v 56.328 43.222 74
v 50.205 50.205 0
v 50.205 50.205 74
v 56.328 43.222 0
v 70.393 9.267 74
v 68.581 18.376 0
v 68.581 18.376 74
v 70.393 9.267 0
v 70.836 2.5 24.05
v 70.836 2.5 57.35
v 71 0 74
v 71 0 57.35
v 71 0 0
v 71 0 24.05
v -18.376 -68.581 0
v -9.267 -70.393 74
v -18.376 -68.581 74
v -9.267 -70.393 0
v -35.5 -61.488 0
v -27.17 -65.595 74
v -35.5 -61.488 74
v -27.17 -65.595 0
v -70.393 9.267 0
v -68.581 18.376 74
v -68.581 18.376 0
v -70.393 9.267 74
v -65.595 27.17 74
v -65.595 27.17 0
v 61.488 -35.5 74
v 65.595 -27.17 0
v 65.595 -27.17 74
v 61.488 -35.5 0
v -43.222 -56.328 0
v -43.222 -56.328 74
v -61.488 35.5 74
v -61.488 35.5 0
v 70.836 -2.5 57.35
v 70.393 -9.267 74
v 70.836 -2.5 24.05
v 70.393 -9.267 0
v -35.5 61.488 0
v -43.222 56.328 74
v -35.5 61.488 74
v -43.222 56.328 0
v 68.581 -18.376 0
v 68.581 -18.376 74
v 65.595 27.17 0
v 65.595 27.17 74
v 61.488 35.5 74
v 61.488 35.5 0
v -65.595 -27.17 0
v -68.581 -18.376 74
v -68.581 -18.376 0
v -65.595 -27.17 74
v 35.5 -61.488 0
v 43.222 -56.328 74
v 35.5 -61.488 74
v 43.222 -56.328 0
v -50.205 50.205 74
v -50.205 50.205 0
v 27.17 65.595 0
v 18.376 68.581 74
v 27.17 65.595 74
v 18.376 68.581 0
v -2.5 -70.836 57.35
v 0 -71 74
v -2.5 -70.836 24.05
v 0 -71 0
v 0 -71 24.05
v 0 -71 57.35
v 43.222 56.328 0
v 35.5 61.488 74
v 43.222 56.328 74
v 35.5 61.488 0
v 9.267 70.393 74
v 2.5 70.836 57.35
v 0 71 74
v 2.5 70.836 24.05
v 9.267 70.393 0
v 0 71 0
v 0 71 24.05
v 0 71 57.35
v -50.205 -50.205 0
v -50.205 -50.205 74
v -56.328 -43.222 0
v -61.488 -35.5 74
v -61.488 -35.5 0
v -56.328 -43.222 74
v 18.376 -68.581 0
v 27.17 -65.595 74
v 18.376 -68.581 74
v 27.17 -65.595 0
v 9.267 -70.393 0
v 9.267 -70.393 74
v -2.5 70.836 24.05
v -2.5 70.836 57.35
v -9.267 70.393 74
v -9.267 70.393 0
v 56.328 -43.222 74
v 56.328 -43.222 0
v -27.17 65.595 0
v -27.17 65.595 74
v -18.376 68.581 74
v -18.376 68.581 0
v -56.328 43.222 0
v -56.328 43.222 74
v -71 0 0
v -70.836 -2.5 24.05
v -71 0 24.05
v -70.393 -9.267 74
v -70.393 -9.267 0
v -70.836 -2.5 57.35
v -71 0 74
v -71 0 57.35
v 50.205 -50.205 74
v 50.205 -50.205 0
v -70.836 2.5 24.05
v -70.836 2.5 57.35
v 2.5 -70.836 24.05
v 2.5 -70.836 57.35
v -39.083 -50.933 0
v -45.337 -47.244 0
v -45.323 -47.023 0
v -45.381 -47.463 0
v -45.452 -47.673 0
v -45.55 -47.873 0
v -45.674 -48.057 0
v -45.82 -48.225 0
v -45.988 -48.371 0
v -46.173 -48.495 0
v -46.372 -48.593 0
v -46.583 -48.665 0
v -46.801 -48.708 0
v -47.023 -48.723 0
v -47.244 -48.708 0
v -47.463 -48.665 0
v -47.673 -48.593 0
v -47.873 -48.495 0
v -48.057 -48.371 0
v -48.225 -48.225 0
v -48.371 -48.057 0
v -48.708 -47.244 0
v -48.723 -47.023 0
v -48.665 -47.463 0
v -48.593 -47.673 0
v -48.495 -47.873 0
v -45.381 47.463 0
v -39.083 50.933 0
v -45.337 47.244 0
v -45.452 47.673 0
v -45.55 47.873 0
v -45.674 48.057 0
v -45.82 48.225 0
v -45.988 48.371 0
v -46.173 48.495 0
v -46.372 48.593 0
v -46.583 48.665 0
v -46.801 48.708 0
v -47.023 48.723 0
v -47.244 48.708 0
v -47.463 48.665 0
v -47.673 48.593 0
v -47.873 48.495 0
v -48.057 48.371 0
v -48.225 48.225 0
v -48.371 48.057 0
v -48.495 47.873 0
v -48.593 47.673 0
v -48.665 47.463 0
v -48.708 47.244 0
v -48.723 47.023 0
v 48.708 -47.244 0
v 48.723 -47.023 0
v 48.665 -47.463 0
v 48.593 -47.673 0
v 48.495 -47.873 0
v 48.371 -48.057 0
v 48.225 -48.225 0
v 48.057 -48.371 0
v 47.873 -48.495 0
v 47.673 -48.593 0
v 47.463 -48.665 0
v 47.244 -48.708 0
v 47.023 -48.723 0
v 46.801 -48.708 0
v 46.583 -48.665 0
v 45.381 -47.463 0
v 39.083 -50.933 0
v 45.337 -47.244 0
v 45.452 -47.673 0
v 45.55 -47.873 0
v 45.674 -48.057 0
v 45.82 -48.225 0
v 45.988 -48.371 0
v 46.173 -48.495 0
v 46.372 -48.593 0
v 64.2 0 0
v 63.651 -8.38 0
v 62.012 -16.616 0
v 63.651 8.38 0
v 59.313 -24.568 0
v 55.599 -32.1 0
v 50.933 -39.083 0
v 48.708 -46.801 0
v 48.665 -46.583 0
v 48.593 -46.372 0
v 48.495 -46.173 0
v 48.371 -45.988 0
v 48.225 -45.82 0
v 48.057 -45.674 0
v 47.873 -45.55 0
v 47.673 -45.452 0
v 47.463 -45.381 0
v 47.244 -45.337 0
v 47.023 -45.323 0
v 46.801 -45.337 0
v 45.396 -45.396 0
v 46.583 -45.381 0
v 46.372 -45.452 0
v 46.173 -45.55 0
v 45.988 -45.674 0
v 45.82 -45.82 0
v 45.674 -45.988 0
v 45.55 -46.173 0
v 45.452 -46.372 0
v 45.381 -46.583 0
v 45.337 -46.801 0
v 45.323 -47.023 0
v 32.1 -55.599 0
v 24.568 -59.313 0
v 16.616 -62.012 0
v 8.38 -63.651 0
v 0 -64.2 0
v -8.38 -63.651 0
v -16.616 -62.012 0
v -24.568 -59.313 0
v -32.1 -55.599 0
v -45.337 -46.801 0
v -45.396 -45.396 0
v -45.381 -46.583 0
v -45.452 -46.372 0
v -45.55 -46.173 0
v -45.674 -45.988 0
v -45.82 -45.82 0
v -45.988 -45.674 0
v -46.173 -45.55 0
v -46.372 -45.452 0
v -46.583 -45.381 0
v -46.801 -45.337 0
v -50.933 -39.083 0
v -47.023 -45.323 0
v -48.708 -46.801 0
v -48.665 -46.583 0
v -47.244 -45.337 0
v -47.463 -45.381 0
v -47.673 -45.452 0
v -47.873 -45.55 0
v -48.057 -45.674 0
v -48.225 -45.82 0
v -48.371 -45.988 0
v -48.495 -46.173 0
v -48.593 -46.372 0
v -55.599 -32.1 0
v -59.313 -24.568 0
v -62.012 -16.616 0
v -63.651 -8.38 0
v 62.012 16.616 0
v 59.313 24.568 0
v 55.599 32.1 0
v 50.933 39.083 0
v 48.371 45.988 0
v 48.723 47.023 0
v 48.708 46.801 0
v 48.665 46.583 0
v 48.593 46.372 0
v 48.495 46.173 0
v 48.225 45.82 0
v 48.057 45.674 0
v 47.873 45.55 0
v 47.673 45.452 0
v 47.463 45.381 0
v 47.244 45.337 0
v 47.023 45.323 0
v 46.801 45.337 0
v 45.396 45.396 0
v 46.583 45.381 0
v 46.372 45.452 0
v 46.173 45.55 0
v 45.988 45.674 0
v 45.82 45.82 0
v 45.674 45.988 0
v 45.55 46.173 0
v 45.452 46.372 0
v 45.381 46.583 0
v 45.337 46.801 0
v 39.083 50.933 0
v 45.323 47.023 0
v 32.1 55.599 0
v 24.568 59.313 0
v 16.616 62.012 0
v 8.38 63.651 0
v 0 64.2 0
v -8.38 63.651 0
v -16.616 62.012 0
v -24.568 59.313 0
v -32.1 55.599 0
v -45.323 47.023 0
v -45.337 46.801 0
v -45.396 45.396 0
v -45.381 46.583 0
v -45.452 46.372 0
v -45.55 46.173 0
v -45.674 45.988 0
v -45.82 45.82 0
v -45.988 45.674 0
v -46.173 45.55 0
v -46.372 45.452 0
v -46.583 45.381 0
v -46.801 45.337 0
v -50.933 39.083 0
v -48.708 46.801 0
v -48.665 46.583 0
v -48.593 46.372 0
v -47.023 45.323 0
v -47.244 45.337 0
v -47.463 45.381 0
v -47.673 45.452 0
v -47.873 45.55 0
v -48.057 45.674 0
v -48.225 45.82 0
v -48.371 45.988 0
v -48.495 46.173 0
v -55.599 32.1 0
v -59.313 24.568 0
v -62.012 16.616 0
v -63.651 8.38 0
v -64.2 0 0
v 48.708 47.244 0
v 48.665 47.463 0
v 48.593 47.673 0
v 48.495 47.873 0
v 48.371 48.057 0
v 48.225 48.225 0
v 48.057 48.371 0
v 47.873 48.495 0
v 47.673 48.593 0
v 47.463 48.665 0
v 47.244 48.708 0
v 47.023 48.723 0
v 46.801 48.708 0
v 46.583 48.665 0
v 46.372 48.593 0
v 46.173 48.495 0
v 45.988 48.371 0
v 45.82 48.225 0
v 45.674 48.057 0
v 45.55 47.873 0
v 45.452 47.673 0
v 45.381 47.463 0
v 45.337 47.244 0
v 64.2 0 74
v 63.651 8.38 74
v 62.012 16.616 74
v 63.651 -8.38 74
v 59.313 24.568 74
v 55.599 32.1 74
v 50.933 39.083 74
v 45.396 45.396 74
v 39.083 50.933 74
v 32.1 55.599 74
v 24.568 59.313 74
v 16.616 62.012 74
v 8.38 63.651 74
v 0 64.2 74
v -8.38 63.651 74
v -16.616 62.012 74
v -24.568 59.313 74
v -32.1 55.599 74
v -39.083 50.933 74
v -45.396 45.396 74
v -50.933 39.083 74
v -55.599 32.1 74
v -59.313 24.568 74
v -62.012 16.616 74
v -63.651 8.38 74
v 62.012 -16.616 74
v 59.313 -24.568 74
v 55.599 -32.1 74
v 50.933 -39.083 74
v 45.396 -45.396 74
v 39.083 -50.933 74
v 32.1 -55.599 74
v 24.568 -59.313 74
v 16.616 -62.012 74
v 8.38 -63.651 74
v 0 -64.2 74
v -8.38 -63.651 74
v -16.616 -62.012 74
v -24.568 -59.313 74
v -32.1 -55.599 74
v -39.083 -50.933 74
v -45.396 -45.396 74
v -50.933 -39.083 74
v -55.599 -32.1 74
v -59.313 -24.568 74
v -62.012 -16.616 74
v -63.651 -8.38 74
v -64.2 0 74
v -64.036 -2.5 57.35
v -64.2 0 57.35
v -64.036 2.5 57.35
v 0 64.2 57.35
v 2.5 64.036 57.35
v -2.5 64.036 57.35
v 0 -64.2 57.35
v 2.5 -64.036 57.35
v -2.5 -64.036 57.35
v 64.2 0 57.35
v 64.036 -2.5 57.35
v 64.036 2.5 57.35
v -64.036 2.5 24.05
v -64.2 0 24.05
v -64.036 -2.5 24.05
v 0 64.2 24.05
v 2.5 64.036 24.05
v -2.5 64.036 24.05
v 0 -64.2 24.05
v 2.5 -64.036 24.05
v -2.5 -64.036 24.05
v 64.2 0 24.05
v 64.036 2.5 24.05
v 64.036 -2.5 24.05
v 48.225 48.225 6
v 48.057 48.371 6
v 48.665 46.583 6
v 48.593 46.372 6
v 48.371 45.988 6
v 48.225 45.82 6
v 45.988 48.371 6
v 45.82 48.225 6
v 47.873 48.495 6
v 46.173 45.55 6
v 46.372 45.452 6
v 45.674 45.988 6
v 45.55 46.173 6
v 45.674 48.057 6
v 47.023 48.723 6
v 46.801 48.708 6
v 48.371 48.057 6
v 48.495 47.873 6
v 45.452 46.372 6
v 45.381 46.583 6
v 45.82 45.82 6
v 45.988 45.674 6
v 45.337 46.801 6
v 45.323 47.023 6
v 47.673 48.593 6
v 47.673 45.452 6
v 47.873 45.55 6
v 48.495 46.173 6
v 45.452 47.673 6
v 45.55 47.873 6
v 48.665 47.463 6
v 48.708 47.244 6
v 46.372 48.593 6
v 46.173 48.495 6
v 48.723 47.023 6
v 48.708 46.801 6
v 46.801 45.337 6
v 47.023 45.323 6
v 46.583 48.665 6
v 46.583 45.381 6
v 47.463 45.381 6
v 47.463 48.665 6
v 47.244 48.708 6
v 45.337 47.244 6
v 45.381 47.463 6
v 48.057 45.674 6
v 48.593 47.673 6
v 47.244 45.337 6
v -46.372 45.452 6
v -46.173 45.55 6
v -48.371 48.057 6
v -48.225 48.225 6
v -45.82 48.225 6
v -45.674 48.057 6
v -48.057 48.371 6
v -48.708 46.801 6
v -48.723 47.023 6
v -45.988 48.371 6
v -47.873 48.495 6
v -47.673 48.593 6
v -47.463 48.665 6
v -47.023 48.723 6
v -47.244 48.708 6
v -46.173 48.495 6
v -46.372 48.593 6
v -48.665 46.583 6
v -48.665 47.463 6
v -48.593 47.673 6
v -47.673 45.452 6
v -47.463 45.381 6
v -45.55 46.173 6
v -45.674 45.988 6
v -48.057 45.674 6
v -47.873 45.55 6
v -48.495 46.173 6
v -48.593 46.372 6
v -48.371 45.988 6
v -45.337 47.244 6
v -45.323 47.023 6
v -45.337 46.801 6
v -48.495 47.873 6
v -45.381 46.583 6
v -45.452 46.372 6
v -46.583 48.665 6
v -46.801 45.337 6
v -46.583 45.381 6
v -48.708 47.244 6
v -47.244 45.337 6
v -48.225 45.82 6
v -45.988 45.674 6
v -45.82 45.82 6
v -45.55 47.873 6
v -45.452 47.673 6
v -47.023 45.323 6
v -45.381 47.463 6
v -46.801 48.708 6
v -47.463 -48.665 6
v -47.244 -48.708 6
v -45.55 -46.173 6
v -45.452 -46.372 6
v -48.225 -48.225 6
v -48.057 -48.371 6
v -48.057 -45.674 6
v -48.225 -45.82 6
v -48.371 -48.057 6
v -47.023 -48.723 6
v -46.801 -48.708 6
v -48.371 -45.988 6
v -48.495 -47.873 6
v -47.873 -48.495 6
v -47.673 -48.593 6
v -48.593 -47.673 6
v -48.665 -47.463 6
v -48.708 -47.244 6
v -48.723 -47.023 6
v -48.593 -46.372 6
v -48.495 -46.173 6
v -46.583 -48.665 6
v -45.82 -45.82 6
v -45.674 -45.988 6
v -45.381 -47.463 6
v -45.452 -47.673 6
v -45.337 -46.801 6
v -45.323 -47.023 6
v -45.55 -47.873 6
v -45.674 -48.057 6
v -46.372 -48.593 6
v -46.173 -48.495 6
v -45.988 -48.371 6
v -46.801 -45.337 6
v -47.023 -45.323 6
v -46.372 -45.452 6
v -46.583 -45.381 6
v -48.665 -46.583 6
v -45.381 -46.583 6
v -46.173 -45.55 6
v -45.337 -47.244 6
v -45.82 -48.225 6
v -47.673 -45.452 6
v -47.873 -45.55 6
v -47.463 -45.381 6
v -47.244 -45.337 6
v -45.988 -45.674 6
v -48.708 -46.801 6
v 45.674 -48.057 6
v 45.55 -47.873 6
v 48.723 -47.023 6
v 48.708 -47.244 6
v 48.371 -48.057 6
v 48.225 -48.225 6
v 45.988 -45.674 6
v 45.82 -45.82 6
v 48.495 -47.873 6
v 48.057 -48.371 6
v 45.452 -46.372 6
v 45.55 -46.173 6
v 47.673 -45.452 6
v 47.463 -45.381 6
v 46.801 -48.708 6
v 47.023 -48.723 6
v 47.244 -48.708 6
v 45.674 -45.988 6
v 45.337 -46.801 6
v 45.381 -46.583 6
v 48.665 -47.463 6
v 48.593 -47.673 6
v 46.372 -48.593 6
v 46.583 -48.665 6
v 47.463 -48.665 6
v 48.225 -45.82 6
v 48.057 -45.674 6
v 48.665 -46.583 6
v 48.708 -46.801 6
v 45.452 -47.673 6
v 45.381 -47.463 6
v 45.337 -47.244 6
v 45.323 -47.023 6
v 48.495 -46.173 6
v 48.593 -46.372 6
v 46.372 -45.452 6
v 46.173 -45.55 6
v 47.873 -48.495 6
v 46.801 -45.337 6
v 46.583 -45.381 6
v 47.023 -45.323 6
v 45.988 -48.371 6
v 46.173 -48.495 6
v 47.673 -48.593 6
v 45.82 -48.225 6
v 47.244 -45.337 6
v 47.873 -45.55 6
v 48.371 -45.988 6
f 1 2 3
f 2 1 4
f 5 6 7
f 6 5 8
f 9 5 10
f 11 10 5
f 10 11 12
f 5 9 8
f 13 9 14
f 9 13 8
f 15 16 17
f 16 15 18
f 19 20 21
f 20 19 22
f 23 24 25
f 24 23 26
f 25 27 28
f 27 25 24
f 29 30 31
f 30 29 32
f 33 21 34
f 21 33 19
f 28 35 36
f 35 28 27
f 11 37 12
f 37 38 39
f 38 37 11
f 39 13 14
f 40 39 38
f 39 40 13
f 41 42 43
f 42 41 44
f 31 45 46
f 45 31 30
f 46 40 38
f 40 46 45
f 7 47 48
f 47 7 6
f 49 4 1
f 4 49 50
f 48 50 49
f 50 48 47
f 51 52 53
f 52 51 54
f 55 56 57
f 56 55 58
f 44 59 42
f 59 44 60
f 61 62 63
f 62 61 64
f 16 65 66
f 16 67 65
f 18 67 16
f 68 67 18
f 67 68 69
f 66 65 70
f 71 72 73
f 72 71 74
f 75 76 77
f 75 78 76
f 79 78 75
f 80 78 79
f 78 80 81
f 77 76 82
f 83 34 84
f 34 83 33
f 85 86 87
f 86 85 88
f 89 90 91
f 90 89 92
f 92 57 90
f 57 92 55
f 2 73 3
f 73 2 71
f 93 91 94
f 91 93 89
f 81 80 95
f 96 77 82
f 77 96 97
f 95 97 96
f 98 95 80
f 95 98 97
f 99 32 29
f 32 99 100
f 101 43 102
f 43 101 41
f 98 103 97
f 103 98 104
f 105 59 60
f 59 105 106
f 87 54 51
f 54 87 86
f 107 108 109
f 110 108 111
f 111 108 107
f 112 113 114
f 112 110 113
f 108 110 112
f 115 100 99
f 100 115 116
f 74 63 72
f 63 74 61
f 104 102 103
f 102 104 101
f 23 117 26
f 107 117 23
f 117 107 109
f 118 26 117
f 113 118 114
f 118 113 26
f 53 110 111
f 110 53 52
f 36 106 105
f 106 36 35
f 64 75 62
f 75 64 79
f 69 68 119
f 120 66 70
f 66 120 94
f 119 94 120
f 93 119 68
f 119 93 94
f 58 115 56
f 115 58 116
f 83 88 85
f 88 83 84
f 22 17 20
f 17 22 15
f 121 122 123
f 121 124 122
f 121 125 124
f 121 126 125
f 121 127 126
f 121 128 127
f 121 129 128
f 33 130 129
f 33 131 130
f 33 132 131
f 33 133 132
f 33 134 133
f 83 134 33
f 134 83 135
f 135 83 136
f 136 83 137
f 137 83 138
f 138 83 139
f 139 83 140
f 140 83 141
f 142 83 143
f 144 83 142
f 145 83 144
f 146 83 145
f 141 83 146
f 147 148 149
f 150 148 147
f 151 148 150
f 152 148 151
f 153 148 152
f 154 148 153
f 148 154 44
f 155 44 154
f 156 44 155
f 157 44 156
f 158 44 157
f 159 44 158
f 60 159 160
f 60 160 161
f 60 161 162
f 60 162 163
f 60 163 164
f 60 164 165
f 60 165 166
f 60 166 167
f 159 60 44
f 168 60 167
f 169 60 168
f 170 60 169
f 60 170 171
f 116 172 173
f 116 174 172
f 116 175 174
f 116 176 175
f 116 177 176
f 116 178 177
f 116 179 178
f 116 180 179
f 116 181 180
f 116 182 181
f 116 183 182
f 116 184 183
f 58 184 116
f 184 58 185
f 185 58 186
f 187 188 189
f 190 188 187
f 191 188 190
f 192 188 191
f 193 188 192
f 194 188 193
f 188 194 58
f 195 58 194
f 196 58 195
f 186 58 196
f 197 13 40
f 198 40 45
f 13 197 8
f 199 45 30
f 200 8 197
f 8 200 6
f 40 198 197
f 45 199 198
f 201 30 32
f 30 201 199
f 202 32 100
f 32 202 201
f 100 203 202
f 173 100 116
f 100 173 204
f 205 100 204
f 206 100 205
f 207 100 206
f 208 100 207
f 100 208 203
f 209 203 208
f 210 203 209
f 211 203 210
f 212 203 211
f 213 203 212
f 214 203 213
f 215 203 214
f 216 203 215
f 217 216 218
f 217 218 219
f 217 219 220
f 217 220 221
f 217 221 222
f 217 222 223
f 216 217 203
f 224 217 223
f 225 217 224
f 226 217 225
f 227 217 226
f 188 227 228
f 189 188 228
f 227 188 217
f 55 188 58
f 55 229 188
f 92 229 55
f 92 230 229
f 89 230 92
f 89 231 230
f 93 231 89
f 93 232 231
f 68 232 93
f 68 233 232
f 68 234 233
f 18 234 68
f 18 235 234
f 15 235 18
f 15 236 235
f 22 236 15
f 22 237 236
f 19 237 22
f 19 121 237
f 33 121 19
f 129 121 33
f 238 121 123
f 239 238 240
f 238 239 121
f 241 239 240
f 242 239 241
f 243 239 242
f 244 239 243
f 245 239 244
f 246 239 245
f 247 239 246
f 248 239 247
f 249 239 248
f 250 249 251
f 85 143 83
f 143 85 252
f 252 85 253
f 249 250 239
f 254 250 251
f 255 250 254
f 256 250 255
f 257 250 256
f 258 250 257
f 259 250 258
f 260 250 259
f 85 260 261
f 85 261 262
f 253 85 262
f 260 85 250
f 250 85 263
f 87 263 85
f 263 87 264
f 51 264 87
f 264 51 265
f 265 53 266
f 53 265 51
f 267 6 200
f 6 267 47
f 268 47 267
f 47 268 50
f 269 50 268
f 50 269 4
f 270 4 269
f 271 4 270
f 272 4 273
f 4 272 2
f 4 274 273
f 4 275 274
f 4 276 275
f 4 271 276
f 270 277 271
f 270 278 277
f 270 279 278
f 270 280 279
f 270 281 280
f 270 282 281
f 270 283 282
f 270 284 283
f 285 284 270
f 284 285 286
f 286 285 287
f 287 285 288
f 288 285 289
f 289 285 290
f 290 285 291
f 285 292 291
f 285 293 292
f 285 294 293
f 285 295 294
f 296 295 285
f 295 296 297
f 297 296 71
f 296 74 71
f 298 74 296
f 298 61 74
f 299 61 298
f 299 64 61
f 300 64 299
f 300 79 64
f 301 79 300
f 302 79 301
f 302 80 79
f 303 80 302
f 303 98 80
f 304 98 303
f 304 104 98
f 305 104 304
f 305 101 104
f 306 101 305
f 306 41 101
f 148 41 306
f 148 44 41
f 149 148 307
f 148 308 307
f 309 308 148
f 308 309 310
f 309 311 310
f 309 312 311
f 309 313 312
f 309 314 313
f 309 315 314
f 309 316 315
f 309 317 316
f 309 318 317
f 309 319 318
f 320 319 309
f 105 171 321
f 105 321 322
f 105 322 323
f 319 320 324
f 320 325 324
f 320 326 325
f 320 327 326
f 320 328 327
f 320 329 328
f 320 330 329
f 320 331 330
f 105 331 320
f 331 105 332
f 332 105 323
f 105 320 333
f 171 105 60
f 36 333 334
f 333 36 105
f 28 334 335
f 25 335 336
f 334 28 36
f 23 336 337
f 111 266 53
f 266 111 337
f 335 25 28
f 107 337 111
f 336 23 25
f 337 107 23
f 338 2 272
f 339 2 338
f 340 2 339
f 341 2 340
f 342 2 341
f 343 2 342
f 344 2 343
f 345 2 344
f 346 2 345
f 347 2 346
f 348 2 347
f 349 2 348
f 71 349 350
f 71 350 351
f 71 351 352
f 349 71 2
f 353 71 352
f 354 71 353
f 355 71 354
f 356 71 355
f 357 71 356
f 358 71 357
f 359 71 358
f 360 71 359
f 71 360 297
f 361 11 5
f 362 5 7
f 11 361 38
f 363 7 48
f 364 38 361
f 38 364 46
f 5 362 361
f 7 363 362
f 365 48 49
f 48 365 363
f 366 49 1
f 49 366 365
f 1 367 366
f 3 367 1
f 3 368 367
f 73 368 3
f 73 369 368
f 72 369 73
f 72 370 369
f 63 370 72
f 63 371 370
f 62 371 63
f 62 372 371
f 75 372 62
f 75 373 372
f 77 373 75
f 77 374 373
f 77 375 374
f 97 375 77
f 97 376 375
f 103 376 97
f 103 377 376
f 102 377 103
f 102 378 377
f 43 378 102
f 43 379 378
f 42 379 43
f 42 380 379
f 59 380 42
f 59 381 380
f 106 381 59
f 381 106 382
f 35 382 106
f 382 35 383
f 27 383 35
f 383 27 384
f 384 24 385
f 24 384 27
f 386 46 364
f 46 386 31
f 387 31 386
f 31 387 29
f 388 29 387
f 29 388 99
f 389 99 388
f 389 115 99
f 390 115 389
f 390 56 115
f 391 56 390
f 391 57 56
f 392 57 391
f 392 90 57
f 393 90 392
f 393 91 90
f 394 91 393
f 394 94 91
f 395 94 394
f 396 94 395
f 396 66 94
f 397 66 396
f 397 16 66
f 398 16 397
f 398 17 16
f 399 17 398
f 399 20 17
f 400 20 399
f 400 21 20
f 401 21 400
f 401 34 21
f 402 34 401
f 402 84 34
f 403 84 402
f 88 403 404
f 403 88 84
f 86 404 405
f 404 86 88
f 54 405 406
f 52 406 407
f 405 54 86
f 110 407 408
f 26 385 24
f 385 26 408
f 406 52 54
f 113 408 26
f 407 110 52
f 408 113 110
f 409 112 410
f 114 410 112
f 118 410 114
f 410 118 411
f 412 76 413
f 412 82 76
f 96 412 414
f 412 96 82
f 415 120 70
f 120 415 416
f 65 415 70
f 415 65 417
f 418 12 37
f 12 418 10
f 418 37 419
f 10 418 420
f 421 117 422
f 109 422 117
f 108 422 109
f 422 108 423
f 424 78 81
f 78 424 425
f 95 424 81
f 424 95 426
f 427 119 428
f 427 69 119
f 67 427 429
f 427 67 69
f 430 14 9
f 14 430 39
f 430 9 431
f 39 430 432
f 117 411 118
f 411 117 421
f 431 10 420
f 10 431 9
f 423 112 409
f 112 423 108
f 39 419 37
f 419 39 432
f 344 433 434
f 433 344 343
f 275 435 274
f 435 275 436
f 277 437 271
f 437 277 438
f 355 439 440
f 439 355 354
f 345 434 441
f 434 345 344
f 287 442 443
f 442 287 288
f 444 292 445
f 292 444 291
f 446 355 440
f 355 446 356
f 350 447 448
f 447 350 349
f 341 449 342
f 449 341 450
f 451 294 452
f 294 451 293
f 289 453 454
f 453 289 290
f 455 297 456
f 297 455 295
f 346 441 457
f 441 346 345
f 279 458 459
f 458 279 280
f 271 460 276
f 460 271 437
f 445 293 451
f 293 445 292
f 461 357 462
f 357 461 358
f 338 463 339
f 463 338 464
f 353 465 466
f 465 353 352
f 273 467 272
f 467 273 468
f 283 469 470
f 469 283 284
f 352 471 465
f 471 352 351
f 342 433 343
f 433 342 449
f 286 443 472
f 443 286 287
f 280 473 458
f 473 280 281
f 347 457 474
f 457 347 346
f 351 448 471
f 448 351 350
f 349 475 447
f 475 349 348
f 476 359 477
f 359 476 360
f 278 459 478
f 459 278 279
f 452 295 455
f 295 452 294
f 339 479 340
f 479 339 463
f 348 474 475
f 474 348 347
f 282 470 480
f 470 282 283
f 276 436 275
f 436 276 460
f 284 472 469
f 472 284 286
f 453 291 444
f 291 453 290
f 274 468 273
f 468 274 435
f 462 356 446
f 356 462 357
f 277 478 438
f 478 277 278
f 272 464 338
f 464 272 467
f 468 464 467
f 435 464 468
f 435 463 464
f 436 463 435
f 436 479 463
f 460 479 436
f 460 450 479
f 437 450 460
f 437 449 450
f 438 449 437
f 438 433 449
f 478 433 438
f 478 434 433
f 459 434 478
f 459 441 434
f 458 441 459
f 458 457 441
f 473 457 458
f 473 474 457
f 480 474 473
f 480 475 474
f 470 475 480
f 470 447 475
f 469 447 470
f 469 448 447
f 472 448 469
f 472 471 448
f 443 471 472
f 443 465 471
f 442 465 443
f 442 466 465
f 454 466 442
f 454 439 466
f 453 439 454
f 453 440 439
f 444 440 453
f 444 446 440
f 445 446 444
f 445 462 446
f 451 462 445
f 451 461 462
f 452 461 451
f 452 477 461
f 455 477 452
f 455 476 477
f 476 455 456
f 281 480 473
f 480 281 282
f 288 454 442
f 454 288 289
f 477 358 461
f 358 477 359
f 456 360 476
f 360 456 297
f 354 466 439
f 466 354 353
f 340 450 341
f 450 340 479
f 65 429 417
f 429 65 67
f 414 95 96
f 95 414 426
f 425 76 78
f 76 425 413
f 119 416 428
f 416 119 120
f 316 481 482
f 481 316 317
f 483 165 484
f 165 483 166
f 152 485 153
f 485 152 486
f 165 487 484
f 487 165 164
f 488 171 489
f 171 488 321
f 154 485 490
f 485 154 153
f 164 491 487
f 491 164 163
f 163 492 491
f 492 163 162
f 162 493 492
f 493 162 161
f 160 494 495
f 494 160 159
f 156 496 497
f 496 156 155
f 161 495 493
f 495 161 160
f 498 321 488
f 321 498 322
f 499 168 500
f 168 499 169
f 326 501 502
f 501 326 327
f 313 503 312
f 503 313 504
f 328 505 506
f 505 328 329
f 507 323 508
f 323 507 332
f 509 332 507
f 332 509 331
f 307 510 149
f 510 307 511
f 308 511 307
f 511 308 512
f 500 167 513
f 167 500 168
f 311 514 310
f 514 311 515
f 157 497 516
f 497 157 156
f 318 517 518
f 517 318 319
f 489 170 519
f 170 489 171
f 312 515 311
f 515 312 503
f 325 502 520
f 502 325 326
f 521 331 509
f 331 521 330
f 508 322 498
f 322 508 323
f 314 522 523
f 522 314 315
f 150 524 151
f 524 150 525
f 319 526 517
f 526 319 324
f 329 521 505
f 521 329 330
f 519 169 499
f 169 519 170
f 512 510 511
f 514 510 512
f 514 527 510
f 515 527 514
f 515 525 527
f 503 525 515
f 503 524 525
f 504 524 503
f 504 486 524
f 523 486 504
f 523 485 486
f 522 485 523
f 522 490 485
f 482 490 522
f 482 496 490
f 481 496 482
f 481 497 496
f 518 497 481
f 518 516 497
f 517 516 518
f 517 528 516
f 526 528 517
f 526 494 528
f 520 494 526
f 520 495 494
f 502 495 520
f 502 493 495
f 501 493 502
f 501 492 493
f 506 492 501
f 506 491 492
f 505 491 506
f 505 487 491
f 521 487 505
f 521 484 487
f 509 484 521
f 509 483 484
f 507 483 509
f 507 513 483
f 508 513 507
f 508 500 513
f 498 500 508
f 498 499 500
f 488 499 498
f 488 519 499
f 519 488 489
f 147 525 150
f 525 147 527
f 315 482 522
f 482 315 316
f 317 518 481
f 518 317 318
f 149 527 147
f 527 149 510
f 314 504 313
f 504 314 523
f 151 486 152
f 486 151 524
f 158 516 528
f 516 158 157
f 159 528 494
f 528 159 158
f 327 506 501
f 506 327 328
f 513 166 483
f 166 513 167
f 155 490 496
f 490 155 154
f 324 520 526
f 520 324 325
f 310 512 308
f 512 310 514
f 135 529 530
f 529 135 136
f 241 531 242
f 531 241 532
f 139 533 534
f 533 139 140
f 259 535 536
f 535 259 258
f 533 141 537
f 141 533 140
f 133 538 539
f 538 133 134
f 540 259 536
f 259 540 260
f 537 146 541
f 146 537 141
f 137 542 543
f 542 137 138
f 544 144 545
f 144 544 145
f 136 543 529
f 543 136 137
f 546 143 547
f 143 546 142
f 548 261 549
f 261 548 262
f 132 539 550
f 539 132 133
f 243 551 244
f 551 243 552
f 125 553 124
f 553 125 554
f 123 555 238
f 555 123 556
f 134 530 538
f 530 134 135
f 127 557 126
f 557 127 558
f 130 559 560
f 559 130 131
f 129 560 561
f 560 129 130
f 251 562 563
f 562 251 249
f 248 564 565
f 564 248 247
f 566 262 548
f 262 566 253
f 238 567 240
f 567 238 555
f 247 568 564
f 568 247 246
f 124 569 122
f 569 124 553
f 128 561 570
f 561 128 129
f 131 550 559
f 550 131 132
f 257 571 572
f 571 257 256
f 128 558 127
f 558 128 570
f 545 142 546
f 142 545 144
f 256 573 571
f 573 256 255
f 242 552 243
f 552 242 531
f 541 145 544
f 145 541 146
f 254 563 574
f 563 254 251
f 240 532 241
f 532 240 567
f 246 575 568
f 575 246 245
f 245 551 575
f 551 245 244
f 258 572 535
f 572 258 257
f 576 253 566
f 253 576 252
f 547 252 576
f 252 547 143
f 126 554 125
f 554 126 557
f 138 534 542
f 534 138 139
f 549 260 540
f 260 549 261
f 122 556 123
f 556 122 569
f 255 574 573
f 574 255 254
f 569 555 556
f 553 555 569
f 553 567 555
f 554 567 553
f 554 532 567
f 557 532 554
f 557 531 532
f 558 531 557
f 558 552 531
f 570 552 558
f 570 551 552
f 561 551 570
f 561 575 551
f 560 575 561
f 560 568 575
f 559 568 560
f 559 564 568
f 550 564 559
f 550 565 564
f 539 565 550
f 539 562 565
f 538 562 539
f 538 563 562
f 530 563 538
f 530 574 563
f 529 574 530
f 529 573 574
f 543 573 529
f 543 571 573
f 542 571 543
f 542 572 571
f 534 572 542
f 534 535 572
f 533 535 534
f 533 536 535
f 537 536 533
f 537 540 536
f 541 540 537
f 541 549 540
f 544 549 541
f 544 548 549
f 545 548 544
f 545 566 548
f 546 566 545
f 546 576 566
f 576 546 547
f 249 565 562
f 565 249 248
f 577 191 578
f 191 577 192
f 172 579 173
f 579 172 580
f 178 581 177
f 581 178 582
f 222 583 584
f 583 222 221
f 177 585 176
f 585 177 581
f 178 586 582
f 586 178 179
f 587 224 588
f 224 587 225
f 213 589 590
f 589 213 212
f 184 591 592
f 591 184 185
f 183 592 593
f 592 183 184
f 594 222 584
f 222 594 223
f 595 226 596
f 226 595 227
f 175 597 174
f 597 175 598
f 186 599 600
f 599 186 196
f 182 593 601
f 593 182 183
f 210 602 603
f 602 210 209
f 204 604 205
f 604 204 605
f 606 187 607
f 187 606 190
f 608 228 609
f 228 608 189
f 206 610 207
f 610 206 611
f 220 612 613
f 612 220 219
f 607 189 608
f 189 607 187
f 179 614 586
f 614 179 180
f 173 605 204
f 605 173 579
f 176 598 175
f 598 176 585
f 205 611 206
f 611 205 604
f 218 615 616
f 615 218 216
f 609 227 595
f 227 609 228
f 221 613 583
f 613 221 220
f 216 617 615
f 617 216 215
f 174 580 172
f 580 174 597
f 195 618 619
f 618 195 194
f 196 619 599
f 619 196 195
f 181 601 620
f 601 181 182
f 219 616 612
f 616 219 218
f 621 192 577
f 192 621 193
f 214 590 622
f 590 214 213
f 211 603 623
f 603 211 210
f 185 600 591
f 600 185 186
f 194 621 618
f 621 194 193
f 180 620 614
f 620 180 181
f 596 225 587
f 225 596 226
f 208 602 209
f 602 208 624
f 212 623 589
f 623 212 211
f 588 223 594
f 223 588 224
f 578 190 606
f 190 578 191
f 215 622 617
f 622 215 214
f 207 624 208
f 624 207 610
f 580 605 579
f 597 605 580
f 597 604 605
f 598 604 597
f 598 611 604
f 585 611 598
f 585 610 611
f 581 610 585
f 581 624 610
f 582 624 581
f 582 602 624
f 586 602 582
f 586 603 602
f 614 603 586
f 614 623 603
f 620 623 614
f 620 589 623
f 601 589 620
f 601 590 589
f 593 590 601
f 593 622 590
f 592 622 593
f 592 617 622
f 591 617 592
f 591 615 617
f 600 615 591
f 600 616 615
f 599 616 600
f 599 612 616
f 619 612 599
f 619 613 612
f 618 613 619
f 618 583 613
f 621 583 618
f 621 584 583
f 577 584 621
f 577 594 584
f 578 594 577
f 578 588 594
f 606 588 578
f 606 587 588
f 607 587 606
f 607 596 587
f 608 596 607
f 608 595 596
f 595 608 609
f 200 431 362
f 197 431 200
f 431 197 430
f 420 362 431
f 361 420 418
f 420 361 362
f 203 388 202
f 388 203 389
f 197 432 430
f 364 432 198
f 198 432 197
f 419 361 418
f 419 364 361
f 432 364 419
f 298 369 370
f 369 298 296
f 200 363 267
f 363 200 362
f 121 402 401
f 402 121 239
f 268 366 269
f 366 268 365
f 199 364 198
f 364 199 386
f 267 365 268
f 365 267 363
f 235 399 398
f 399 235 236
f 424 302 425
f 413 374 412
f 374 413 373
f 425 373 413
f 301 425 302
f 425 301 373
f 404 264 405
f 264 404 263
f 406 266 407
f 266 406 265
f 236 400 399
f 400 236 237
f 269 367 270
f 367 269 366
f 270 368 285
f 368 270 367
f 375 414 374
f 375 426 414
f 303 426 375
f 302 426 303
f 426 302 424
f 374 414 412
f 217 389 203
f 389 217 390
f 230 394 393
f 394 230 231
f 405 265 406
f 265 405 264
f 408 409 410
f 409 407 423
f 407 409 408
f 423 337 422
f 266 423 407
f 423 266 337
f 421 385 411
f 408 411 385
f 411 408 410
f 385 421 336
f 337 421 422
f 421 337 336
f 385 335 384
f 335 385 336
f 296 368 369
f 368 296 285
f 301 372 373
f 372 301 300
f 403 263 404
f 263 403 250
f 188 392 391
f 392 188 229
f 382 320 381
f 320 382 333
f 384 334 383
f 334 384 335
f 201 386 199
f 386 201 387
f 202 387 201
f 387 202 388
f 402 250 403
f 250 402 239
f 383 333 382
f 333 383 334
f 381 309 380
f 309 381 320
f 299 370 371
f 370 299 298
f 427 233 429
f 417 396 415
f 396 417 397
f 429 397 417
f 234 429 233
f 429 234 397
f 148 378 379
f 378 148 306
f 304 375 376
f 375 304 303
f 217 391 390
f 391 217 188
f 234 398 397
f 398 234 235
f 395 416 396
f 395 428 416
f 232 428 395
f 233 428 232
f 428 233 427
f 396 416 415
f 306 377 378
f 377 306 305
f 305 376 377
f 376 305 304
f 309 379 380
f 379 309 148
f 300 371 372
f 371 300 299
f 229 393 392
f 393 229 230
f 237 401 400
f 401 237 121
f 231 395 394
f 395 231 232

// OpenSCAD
// ============================================================================
// Get Me An Alt — Parametric OpenSCAD Module
// Part: PRT-04 — Centrifugal Blower Acoustic Volute & Motor Mount (impeller-shroud)
// Function: Houses the 24V centrifugal blower and suppresses motor noise.
// Target Bounding Box (mm): [142, 142, 74]
// Print Material: PETG | Min Wall: >= 1.6mm | Tolerance: 0.2mm
// ============================================================================
$fn = 48;
part_width = 142;
part_depth = 142;
part_height = 74;
wall_thickness = 3.5;
floor_thickness = 3.5;
corner_radius = 4;
tolerance = 0.2;
m3_clearance_d = 3.4; // M3 screw clearance hole (3.0mm + 2*0.2mm)

module rounded_rect_prism(w, d, h, r) {
  cr = max(0.5, min(r, min(w, d) / 2 - 0.1));
  linear_extrude(height = h)
    offset(r = cr)
      offset(r = -cr)
        square([w, d], center = true);
}

module part_impeller_shroud() {
  difference() {
    union() {
      // Base mounting flange
      cylinder(h = 5, r = 71);
      // Cylindrical isolation collar
      cylinder(h = part_height, r = 71);
    }
    // Central bore with 0.2mm fit tolerance
    translate([0, 0, -1])
      cylinder(h = part_height + 2, r = 64 + tolerance);
    // Side water intake relief slots
    for (ang = [0, 90, 180, 270]) {
      rotate([0, 0, ang])
        translate([0, 0, part_height * 0.55])
          cube([156.2, 5.0, part_height * 0.45], center = true);
      // Flange M3 anchor holes
      rotate([0, 0, ang + 45])
        translate([66.5, 0, -1])
          cylinder(h = 7, d = m3_clearance_d);
    }
  }
}

part_impeller_shroud();
